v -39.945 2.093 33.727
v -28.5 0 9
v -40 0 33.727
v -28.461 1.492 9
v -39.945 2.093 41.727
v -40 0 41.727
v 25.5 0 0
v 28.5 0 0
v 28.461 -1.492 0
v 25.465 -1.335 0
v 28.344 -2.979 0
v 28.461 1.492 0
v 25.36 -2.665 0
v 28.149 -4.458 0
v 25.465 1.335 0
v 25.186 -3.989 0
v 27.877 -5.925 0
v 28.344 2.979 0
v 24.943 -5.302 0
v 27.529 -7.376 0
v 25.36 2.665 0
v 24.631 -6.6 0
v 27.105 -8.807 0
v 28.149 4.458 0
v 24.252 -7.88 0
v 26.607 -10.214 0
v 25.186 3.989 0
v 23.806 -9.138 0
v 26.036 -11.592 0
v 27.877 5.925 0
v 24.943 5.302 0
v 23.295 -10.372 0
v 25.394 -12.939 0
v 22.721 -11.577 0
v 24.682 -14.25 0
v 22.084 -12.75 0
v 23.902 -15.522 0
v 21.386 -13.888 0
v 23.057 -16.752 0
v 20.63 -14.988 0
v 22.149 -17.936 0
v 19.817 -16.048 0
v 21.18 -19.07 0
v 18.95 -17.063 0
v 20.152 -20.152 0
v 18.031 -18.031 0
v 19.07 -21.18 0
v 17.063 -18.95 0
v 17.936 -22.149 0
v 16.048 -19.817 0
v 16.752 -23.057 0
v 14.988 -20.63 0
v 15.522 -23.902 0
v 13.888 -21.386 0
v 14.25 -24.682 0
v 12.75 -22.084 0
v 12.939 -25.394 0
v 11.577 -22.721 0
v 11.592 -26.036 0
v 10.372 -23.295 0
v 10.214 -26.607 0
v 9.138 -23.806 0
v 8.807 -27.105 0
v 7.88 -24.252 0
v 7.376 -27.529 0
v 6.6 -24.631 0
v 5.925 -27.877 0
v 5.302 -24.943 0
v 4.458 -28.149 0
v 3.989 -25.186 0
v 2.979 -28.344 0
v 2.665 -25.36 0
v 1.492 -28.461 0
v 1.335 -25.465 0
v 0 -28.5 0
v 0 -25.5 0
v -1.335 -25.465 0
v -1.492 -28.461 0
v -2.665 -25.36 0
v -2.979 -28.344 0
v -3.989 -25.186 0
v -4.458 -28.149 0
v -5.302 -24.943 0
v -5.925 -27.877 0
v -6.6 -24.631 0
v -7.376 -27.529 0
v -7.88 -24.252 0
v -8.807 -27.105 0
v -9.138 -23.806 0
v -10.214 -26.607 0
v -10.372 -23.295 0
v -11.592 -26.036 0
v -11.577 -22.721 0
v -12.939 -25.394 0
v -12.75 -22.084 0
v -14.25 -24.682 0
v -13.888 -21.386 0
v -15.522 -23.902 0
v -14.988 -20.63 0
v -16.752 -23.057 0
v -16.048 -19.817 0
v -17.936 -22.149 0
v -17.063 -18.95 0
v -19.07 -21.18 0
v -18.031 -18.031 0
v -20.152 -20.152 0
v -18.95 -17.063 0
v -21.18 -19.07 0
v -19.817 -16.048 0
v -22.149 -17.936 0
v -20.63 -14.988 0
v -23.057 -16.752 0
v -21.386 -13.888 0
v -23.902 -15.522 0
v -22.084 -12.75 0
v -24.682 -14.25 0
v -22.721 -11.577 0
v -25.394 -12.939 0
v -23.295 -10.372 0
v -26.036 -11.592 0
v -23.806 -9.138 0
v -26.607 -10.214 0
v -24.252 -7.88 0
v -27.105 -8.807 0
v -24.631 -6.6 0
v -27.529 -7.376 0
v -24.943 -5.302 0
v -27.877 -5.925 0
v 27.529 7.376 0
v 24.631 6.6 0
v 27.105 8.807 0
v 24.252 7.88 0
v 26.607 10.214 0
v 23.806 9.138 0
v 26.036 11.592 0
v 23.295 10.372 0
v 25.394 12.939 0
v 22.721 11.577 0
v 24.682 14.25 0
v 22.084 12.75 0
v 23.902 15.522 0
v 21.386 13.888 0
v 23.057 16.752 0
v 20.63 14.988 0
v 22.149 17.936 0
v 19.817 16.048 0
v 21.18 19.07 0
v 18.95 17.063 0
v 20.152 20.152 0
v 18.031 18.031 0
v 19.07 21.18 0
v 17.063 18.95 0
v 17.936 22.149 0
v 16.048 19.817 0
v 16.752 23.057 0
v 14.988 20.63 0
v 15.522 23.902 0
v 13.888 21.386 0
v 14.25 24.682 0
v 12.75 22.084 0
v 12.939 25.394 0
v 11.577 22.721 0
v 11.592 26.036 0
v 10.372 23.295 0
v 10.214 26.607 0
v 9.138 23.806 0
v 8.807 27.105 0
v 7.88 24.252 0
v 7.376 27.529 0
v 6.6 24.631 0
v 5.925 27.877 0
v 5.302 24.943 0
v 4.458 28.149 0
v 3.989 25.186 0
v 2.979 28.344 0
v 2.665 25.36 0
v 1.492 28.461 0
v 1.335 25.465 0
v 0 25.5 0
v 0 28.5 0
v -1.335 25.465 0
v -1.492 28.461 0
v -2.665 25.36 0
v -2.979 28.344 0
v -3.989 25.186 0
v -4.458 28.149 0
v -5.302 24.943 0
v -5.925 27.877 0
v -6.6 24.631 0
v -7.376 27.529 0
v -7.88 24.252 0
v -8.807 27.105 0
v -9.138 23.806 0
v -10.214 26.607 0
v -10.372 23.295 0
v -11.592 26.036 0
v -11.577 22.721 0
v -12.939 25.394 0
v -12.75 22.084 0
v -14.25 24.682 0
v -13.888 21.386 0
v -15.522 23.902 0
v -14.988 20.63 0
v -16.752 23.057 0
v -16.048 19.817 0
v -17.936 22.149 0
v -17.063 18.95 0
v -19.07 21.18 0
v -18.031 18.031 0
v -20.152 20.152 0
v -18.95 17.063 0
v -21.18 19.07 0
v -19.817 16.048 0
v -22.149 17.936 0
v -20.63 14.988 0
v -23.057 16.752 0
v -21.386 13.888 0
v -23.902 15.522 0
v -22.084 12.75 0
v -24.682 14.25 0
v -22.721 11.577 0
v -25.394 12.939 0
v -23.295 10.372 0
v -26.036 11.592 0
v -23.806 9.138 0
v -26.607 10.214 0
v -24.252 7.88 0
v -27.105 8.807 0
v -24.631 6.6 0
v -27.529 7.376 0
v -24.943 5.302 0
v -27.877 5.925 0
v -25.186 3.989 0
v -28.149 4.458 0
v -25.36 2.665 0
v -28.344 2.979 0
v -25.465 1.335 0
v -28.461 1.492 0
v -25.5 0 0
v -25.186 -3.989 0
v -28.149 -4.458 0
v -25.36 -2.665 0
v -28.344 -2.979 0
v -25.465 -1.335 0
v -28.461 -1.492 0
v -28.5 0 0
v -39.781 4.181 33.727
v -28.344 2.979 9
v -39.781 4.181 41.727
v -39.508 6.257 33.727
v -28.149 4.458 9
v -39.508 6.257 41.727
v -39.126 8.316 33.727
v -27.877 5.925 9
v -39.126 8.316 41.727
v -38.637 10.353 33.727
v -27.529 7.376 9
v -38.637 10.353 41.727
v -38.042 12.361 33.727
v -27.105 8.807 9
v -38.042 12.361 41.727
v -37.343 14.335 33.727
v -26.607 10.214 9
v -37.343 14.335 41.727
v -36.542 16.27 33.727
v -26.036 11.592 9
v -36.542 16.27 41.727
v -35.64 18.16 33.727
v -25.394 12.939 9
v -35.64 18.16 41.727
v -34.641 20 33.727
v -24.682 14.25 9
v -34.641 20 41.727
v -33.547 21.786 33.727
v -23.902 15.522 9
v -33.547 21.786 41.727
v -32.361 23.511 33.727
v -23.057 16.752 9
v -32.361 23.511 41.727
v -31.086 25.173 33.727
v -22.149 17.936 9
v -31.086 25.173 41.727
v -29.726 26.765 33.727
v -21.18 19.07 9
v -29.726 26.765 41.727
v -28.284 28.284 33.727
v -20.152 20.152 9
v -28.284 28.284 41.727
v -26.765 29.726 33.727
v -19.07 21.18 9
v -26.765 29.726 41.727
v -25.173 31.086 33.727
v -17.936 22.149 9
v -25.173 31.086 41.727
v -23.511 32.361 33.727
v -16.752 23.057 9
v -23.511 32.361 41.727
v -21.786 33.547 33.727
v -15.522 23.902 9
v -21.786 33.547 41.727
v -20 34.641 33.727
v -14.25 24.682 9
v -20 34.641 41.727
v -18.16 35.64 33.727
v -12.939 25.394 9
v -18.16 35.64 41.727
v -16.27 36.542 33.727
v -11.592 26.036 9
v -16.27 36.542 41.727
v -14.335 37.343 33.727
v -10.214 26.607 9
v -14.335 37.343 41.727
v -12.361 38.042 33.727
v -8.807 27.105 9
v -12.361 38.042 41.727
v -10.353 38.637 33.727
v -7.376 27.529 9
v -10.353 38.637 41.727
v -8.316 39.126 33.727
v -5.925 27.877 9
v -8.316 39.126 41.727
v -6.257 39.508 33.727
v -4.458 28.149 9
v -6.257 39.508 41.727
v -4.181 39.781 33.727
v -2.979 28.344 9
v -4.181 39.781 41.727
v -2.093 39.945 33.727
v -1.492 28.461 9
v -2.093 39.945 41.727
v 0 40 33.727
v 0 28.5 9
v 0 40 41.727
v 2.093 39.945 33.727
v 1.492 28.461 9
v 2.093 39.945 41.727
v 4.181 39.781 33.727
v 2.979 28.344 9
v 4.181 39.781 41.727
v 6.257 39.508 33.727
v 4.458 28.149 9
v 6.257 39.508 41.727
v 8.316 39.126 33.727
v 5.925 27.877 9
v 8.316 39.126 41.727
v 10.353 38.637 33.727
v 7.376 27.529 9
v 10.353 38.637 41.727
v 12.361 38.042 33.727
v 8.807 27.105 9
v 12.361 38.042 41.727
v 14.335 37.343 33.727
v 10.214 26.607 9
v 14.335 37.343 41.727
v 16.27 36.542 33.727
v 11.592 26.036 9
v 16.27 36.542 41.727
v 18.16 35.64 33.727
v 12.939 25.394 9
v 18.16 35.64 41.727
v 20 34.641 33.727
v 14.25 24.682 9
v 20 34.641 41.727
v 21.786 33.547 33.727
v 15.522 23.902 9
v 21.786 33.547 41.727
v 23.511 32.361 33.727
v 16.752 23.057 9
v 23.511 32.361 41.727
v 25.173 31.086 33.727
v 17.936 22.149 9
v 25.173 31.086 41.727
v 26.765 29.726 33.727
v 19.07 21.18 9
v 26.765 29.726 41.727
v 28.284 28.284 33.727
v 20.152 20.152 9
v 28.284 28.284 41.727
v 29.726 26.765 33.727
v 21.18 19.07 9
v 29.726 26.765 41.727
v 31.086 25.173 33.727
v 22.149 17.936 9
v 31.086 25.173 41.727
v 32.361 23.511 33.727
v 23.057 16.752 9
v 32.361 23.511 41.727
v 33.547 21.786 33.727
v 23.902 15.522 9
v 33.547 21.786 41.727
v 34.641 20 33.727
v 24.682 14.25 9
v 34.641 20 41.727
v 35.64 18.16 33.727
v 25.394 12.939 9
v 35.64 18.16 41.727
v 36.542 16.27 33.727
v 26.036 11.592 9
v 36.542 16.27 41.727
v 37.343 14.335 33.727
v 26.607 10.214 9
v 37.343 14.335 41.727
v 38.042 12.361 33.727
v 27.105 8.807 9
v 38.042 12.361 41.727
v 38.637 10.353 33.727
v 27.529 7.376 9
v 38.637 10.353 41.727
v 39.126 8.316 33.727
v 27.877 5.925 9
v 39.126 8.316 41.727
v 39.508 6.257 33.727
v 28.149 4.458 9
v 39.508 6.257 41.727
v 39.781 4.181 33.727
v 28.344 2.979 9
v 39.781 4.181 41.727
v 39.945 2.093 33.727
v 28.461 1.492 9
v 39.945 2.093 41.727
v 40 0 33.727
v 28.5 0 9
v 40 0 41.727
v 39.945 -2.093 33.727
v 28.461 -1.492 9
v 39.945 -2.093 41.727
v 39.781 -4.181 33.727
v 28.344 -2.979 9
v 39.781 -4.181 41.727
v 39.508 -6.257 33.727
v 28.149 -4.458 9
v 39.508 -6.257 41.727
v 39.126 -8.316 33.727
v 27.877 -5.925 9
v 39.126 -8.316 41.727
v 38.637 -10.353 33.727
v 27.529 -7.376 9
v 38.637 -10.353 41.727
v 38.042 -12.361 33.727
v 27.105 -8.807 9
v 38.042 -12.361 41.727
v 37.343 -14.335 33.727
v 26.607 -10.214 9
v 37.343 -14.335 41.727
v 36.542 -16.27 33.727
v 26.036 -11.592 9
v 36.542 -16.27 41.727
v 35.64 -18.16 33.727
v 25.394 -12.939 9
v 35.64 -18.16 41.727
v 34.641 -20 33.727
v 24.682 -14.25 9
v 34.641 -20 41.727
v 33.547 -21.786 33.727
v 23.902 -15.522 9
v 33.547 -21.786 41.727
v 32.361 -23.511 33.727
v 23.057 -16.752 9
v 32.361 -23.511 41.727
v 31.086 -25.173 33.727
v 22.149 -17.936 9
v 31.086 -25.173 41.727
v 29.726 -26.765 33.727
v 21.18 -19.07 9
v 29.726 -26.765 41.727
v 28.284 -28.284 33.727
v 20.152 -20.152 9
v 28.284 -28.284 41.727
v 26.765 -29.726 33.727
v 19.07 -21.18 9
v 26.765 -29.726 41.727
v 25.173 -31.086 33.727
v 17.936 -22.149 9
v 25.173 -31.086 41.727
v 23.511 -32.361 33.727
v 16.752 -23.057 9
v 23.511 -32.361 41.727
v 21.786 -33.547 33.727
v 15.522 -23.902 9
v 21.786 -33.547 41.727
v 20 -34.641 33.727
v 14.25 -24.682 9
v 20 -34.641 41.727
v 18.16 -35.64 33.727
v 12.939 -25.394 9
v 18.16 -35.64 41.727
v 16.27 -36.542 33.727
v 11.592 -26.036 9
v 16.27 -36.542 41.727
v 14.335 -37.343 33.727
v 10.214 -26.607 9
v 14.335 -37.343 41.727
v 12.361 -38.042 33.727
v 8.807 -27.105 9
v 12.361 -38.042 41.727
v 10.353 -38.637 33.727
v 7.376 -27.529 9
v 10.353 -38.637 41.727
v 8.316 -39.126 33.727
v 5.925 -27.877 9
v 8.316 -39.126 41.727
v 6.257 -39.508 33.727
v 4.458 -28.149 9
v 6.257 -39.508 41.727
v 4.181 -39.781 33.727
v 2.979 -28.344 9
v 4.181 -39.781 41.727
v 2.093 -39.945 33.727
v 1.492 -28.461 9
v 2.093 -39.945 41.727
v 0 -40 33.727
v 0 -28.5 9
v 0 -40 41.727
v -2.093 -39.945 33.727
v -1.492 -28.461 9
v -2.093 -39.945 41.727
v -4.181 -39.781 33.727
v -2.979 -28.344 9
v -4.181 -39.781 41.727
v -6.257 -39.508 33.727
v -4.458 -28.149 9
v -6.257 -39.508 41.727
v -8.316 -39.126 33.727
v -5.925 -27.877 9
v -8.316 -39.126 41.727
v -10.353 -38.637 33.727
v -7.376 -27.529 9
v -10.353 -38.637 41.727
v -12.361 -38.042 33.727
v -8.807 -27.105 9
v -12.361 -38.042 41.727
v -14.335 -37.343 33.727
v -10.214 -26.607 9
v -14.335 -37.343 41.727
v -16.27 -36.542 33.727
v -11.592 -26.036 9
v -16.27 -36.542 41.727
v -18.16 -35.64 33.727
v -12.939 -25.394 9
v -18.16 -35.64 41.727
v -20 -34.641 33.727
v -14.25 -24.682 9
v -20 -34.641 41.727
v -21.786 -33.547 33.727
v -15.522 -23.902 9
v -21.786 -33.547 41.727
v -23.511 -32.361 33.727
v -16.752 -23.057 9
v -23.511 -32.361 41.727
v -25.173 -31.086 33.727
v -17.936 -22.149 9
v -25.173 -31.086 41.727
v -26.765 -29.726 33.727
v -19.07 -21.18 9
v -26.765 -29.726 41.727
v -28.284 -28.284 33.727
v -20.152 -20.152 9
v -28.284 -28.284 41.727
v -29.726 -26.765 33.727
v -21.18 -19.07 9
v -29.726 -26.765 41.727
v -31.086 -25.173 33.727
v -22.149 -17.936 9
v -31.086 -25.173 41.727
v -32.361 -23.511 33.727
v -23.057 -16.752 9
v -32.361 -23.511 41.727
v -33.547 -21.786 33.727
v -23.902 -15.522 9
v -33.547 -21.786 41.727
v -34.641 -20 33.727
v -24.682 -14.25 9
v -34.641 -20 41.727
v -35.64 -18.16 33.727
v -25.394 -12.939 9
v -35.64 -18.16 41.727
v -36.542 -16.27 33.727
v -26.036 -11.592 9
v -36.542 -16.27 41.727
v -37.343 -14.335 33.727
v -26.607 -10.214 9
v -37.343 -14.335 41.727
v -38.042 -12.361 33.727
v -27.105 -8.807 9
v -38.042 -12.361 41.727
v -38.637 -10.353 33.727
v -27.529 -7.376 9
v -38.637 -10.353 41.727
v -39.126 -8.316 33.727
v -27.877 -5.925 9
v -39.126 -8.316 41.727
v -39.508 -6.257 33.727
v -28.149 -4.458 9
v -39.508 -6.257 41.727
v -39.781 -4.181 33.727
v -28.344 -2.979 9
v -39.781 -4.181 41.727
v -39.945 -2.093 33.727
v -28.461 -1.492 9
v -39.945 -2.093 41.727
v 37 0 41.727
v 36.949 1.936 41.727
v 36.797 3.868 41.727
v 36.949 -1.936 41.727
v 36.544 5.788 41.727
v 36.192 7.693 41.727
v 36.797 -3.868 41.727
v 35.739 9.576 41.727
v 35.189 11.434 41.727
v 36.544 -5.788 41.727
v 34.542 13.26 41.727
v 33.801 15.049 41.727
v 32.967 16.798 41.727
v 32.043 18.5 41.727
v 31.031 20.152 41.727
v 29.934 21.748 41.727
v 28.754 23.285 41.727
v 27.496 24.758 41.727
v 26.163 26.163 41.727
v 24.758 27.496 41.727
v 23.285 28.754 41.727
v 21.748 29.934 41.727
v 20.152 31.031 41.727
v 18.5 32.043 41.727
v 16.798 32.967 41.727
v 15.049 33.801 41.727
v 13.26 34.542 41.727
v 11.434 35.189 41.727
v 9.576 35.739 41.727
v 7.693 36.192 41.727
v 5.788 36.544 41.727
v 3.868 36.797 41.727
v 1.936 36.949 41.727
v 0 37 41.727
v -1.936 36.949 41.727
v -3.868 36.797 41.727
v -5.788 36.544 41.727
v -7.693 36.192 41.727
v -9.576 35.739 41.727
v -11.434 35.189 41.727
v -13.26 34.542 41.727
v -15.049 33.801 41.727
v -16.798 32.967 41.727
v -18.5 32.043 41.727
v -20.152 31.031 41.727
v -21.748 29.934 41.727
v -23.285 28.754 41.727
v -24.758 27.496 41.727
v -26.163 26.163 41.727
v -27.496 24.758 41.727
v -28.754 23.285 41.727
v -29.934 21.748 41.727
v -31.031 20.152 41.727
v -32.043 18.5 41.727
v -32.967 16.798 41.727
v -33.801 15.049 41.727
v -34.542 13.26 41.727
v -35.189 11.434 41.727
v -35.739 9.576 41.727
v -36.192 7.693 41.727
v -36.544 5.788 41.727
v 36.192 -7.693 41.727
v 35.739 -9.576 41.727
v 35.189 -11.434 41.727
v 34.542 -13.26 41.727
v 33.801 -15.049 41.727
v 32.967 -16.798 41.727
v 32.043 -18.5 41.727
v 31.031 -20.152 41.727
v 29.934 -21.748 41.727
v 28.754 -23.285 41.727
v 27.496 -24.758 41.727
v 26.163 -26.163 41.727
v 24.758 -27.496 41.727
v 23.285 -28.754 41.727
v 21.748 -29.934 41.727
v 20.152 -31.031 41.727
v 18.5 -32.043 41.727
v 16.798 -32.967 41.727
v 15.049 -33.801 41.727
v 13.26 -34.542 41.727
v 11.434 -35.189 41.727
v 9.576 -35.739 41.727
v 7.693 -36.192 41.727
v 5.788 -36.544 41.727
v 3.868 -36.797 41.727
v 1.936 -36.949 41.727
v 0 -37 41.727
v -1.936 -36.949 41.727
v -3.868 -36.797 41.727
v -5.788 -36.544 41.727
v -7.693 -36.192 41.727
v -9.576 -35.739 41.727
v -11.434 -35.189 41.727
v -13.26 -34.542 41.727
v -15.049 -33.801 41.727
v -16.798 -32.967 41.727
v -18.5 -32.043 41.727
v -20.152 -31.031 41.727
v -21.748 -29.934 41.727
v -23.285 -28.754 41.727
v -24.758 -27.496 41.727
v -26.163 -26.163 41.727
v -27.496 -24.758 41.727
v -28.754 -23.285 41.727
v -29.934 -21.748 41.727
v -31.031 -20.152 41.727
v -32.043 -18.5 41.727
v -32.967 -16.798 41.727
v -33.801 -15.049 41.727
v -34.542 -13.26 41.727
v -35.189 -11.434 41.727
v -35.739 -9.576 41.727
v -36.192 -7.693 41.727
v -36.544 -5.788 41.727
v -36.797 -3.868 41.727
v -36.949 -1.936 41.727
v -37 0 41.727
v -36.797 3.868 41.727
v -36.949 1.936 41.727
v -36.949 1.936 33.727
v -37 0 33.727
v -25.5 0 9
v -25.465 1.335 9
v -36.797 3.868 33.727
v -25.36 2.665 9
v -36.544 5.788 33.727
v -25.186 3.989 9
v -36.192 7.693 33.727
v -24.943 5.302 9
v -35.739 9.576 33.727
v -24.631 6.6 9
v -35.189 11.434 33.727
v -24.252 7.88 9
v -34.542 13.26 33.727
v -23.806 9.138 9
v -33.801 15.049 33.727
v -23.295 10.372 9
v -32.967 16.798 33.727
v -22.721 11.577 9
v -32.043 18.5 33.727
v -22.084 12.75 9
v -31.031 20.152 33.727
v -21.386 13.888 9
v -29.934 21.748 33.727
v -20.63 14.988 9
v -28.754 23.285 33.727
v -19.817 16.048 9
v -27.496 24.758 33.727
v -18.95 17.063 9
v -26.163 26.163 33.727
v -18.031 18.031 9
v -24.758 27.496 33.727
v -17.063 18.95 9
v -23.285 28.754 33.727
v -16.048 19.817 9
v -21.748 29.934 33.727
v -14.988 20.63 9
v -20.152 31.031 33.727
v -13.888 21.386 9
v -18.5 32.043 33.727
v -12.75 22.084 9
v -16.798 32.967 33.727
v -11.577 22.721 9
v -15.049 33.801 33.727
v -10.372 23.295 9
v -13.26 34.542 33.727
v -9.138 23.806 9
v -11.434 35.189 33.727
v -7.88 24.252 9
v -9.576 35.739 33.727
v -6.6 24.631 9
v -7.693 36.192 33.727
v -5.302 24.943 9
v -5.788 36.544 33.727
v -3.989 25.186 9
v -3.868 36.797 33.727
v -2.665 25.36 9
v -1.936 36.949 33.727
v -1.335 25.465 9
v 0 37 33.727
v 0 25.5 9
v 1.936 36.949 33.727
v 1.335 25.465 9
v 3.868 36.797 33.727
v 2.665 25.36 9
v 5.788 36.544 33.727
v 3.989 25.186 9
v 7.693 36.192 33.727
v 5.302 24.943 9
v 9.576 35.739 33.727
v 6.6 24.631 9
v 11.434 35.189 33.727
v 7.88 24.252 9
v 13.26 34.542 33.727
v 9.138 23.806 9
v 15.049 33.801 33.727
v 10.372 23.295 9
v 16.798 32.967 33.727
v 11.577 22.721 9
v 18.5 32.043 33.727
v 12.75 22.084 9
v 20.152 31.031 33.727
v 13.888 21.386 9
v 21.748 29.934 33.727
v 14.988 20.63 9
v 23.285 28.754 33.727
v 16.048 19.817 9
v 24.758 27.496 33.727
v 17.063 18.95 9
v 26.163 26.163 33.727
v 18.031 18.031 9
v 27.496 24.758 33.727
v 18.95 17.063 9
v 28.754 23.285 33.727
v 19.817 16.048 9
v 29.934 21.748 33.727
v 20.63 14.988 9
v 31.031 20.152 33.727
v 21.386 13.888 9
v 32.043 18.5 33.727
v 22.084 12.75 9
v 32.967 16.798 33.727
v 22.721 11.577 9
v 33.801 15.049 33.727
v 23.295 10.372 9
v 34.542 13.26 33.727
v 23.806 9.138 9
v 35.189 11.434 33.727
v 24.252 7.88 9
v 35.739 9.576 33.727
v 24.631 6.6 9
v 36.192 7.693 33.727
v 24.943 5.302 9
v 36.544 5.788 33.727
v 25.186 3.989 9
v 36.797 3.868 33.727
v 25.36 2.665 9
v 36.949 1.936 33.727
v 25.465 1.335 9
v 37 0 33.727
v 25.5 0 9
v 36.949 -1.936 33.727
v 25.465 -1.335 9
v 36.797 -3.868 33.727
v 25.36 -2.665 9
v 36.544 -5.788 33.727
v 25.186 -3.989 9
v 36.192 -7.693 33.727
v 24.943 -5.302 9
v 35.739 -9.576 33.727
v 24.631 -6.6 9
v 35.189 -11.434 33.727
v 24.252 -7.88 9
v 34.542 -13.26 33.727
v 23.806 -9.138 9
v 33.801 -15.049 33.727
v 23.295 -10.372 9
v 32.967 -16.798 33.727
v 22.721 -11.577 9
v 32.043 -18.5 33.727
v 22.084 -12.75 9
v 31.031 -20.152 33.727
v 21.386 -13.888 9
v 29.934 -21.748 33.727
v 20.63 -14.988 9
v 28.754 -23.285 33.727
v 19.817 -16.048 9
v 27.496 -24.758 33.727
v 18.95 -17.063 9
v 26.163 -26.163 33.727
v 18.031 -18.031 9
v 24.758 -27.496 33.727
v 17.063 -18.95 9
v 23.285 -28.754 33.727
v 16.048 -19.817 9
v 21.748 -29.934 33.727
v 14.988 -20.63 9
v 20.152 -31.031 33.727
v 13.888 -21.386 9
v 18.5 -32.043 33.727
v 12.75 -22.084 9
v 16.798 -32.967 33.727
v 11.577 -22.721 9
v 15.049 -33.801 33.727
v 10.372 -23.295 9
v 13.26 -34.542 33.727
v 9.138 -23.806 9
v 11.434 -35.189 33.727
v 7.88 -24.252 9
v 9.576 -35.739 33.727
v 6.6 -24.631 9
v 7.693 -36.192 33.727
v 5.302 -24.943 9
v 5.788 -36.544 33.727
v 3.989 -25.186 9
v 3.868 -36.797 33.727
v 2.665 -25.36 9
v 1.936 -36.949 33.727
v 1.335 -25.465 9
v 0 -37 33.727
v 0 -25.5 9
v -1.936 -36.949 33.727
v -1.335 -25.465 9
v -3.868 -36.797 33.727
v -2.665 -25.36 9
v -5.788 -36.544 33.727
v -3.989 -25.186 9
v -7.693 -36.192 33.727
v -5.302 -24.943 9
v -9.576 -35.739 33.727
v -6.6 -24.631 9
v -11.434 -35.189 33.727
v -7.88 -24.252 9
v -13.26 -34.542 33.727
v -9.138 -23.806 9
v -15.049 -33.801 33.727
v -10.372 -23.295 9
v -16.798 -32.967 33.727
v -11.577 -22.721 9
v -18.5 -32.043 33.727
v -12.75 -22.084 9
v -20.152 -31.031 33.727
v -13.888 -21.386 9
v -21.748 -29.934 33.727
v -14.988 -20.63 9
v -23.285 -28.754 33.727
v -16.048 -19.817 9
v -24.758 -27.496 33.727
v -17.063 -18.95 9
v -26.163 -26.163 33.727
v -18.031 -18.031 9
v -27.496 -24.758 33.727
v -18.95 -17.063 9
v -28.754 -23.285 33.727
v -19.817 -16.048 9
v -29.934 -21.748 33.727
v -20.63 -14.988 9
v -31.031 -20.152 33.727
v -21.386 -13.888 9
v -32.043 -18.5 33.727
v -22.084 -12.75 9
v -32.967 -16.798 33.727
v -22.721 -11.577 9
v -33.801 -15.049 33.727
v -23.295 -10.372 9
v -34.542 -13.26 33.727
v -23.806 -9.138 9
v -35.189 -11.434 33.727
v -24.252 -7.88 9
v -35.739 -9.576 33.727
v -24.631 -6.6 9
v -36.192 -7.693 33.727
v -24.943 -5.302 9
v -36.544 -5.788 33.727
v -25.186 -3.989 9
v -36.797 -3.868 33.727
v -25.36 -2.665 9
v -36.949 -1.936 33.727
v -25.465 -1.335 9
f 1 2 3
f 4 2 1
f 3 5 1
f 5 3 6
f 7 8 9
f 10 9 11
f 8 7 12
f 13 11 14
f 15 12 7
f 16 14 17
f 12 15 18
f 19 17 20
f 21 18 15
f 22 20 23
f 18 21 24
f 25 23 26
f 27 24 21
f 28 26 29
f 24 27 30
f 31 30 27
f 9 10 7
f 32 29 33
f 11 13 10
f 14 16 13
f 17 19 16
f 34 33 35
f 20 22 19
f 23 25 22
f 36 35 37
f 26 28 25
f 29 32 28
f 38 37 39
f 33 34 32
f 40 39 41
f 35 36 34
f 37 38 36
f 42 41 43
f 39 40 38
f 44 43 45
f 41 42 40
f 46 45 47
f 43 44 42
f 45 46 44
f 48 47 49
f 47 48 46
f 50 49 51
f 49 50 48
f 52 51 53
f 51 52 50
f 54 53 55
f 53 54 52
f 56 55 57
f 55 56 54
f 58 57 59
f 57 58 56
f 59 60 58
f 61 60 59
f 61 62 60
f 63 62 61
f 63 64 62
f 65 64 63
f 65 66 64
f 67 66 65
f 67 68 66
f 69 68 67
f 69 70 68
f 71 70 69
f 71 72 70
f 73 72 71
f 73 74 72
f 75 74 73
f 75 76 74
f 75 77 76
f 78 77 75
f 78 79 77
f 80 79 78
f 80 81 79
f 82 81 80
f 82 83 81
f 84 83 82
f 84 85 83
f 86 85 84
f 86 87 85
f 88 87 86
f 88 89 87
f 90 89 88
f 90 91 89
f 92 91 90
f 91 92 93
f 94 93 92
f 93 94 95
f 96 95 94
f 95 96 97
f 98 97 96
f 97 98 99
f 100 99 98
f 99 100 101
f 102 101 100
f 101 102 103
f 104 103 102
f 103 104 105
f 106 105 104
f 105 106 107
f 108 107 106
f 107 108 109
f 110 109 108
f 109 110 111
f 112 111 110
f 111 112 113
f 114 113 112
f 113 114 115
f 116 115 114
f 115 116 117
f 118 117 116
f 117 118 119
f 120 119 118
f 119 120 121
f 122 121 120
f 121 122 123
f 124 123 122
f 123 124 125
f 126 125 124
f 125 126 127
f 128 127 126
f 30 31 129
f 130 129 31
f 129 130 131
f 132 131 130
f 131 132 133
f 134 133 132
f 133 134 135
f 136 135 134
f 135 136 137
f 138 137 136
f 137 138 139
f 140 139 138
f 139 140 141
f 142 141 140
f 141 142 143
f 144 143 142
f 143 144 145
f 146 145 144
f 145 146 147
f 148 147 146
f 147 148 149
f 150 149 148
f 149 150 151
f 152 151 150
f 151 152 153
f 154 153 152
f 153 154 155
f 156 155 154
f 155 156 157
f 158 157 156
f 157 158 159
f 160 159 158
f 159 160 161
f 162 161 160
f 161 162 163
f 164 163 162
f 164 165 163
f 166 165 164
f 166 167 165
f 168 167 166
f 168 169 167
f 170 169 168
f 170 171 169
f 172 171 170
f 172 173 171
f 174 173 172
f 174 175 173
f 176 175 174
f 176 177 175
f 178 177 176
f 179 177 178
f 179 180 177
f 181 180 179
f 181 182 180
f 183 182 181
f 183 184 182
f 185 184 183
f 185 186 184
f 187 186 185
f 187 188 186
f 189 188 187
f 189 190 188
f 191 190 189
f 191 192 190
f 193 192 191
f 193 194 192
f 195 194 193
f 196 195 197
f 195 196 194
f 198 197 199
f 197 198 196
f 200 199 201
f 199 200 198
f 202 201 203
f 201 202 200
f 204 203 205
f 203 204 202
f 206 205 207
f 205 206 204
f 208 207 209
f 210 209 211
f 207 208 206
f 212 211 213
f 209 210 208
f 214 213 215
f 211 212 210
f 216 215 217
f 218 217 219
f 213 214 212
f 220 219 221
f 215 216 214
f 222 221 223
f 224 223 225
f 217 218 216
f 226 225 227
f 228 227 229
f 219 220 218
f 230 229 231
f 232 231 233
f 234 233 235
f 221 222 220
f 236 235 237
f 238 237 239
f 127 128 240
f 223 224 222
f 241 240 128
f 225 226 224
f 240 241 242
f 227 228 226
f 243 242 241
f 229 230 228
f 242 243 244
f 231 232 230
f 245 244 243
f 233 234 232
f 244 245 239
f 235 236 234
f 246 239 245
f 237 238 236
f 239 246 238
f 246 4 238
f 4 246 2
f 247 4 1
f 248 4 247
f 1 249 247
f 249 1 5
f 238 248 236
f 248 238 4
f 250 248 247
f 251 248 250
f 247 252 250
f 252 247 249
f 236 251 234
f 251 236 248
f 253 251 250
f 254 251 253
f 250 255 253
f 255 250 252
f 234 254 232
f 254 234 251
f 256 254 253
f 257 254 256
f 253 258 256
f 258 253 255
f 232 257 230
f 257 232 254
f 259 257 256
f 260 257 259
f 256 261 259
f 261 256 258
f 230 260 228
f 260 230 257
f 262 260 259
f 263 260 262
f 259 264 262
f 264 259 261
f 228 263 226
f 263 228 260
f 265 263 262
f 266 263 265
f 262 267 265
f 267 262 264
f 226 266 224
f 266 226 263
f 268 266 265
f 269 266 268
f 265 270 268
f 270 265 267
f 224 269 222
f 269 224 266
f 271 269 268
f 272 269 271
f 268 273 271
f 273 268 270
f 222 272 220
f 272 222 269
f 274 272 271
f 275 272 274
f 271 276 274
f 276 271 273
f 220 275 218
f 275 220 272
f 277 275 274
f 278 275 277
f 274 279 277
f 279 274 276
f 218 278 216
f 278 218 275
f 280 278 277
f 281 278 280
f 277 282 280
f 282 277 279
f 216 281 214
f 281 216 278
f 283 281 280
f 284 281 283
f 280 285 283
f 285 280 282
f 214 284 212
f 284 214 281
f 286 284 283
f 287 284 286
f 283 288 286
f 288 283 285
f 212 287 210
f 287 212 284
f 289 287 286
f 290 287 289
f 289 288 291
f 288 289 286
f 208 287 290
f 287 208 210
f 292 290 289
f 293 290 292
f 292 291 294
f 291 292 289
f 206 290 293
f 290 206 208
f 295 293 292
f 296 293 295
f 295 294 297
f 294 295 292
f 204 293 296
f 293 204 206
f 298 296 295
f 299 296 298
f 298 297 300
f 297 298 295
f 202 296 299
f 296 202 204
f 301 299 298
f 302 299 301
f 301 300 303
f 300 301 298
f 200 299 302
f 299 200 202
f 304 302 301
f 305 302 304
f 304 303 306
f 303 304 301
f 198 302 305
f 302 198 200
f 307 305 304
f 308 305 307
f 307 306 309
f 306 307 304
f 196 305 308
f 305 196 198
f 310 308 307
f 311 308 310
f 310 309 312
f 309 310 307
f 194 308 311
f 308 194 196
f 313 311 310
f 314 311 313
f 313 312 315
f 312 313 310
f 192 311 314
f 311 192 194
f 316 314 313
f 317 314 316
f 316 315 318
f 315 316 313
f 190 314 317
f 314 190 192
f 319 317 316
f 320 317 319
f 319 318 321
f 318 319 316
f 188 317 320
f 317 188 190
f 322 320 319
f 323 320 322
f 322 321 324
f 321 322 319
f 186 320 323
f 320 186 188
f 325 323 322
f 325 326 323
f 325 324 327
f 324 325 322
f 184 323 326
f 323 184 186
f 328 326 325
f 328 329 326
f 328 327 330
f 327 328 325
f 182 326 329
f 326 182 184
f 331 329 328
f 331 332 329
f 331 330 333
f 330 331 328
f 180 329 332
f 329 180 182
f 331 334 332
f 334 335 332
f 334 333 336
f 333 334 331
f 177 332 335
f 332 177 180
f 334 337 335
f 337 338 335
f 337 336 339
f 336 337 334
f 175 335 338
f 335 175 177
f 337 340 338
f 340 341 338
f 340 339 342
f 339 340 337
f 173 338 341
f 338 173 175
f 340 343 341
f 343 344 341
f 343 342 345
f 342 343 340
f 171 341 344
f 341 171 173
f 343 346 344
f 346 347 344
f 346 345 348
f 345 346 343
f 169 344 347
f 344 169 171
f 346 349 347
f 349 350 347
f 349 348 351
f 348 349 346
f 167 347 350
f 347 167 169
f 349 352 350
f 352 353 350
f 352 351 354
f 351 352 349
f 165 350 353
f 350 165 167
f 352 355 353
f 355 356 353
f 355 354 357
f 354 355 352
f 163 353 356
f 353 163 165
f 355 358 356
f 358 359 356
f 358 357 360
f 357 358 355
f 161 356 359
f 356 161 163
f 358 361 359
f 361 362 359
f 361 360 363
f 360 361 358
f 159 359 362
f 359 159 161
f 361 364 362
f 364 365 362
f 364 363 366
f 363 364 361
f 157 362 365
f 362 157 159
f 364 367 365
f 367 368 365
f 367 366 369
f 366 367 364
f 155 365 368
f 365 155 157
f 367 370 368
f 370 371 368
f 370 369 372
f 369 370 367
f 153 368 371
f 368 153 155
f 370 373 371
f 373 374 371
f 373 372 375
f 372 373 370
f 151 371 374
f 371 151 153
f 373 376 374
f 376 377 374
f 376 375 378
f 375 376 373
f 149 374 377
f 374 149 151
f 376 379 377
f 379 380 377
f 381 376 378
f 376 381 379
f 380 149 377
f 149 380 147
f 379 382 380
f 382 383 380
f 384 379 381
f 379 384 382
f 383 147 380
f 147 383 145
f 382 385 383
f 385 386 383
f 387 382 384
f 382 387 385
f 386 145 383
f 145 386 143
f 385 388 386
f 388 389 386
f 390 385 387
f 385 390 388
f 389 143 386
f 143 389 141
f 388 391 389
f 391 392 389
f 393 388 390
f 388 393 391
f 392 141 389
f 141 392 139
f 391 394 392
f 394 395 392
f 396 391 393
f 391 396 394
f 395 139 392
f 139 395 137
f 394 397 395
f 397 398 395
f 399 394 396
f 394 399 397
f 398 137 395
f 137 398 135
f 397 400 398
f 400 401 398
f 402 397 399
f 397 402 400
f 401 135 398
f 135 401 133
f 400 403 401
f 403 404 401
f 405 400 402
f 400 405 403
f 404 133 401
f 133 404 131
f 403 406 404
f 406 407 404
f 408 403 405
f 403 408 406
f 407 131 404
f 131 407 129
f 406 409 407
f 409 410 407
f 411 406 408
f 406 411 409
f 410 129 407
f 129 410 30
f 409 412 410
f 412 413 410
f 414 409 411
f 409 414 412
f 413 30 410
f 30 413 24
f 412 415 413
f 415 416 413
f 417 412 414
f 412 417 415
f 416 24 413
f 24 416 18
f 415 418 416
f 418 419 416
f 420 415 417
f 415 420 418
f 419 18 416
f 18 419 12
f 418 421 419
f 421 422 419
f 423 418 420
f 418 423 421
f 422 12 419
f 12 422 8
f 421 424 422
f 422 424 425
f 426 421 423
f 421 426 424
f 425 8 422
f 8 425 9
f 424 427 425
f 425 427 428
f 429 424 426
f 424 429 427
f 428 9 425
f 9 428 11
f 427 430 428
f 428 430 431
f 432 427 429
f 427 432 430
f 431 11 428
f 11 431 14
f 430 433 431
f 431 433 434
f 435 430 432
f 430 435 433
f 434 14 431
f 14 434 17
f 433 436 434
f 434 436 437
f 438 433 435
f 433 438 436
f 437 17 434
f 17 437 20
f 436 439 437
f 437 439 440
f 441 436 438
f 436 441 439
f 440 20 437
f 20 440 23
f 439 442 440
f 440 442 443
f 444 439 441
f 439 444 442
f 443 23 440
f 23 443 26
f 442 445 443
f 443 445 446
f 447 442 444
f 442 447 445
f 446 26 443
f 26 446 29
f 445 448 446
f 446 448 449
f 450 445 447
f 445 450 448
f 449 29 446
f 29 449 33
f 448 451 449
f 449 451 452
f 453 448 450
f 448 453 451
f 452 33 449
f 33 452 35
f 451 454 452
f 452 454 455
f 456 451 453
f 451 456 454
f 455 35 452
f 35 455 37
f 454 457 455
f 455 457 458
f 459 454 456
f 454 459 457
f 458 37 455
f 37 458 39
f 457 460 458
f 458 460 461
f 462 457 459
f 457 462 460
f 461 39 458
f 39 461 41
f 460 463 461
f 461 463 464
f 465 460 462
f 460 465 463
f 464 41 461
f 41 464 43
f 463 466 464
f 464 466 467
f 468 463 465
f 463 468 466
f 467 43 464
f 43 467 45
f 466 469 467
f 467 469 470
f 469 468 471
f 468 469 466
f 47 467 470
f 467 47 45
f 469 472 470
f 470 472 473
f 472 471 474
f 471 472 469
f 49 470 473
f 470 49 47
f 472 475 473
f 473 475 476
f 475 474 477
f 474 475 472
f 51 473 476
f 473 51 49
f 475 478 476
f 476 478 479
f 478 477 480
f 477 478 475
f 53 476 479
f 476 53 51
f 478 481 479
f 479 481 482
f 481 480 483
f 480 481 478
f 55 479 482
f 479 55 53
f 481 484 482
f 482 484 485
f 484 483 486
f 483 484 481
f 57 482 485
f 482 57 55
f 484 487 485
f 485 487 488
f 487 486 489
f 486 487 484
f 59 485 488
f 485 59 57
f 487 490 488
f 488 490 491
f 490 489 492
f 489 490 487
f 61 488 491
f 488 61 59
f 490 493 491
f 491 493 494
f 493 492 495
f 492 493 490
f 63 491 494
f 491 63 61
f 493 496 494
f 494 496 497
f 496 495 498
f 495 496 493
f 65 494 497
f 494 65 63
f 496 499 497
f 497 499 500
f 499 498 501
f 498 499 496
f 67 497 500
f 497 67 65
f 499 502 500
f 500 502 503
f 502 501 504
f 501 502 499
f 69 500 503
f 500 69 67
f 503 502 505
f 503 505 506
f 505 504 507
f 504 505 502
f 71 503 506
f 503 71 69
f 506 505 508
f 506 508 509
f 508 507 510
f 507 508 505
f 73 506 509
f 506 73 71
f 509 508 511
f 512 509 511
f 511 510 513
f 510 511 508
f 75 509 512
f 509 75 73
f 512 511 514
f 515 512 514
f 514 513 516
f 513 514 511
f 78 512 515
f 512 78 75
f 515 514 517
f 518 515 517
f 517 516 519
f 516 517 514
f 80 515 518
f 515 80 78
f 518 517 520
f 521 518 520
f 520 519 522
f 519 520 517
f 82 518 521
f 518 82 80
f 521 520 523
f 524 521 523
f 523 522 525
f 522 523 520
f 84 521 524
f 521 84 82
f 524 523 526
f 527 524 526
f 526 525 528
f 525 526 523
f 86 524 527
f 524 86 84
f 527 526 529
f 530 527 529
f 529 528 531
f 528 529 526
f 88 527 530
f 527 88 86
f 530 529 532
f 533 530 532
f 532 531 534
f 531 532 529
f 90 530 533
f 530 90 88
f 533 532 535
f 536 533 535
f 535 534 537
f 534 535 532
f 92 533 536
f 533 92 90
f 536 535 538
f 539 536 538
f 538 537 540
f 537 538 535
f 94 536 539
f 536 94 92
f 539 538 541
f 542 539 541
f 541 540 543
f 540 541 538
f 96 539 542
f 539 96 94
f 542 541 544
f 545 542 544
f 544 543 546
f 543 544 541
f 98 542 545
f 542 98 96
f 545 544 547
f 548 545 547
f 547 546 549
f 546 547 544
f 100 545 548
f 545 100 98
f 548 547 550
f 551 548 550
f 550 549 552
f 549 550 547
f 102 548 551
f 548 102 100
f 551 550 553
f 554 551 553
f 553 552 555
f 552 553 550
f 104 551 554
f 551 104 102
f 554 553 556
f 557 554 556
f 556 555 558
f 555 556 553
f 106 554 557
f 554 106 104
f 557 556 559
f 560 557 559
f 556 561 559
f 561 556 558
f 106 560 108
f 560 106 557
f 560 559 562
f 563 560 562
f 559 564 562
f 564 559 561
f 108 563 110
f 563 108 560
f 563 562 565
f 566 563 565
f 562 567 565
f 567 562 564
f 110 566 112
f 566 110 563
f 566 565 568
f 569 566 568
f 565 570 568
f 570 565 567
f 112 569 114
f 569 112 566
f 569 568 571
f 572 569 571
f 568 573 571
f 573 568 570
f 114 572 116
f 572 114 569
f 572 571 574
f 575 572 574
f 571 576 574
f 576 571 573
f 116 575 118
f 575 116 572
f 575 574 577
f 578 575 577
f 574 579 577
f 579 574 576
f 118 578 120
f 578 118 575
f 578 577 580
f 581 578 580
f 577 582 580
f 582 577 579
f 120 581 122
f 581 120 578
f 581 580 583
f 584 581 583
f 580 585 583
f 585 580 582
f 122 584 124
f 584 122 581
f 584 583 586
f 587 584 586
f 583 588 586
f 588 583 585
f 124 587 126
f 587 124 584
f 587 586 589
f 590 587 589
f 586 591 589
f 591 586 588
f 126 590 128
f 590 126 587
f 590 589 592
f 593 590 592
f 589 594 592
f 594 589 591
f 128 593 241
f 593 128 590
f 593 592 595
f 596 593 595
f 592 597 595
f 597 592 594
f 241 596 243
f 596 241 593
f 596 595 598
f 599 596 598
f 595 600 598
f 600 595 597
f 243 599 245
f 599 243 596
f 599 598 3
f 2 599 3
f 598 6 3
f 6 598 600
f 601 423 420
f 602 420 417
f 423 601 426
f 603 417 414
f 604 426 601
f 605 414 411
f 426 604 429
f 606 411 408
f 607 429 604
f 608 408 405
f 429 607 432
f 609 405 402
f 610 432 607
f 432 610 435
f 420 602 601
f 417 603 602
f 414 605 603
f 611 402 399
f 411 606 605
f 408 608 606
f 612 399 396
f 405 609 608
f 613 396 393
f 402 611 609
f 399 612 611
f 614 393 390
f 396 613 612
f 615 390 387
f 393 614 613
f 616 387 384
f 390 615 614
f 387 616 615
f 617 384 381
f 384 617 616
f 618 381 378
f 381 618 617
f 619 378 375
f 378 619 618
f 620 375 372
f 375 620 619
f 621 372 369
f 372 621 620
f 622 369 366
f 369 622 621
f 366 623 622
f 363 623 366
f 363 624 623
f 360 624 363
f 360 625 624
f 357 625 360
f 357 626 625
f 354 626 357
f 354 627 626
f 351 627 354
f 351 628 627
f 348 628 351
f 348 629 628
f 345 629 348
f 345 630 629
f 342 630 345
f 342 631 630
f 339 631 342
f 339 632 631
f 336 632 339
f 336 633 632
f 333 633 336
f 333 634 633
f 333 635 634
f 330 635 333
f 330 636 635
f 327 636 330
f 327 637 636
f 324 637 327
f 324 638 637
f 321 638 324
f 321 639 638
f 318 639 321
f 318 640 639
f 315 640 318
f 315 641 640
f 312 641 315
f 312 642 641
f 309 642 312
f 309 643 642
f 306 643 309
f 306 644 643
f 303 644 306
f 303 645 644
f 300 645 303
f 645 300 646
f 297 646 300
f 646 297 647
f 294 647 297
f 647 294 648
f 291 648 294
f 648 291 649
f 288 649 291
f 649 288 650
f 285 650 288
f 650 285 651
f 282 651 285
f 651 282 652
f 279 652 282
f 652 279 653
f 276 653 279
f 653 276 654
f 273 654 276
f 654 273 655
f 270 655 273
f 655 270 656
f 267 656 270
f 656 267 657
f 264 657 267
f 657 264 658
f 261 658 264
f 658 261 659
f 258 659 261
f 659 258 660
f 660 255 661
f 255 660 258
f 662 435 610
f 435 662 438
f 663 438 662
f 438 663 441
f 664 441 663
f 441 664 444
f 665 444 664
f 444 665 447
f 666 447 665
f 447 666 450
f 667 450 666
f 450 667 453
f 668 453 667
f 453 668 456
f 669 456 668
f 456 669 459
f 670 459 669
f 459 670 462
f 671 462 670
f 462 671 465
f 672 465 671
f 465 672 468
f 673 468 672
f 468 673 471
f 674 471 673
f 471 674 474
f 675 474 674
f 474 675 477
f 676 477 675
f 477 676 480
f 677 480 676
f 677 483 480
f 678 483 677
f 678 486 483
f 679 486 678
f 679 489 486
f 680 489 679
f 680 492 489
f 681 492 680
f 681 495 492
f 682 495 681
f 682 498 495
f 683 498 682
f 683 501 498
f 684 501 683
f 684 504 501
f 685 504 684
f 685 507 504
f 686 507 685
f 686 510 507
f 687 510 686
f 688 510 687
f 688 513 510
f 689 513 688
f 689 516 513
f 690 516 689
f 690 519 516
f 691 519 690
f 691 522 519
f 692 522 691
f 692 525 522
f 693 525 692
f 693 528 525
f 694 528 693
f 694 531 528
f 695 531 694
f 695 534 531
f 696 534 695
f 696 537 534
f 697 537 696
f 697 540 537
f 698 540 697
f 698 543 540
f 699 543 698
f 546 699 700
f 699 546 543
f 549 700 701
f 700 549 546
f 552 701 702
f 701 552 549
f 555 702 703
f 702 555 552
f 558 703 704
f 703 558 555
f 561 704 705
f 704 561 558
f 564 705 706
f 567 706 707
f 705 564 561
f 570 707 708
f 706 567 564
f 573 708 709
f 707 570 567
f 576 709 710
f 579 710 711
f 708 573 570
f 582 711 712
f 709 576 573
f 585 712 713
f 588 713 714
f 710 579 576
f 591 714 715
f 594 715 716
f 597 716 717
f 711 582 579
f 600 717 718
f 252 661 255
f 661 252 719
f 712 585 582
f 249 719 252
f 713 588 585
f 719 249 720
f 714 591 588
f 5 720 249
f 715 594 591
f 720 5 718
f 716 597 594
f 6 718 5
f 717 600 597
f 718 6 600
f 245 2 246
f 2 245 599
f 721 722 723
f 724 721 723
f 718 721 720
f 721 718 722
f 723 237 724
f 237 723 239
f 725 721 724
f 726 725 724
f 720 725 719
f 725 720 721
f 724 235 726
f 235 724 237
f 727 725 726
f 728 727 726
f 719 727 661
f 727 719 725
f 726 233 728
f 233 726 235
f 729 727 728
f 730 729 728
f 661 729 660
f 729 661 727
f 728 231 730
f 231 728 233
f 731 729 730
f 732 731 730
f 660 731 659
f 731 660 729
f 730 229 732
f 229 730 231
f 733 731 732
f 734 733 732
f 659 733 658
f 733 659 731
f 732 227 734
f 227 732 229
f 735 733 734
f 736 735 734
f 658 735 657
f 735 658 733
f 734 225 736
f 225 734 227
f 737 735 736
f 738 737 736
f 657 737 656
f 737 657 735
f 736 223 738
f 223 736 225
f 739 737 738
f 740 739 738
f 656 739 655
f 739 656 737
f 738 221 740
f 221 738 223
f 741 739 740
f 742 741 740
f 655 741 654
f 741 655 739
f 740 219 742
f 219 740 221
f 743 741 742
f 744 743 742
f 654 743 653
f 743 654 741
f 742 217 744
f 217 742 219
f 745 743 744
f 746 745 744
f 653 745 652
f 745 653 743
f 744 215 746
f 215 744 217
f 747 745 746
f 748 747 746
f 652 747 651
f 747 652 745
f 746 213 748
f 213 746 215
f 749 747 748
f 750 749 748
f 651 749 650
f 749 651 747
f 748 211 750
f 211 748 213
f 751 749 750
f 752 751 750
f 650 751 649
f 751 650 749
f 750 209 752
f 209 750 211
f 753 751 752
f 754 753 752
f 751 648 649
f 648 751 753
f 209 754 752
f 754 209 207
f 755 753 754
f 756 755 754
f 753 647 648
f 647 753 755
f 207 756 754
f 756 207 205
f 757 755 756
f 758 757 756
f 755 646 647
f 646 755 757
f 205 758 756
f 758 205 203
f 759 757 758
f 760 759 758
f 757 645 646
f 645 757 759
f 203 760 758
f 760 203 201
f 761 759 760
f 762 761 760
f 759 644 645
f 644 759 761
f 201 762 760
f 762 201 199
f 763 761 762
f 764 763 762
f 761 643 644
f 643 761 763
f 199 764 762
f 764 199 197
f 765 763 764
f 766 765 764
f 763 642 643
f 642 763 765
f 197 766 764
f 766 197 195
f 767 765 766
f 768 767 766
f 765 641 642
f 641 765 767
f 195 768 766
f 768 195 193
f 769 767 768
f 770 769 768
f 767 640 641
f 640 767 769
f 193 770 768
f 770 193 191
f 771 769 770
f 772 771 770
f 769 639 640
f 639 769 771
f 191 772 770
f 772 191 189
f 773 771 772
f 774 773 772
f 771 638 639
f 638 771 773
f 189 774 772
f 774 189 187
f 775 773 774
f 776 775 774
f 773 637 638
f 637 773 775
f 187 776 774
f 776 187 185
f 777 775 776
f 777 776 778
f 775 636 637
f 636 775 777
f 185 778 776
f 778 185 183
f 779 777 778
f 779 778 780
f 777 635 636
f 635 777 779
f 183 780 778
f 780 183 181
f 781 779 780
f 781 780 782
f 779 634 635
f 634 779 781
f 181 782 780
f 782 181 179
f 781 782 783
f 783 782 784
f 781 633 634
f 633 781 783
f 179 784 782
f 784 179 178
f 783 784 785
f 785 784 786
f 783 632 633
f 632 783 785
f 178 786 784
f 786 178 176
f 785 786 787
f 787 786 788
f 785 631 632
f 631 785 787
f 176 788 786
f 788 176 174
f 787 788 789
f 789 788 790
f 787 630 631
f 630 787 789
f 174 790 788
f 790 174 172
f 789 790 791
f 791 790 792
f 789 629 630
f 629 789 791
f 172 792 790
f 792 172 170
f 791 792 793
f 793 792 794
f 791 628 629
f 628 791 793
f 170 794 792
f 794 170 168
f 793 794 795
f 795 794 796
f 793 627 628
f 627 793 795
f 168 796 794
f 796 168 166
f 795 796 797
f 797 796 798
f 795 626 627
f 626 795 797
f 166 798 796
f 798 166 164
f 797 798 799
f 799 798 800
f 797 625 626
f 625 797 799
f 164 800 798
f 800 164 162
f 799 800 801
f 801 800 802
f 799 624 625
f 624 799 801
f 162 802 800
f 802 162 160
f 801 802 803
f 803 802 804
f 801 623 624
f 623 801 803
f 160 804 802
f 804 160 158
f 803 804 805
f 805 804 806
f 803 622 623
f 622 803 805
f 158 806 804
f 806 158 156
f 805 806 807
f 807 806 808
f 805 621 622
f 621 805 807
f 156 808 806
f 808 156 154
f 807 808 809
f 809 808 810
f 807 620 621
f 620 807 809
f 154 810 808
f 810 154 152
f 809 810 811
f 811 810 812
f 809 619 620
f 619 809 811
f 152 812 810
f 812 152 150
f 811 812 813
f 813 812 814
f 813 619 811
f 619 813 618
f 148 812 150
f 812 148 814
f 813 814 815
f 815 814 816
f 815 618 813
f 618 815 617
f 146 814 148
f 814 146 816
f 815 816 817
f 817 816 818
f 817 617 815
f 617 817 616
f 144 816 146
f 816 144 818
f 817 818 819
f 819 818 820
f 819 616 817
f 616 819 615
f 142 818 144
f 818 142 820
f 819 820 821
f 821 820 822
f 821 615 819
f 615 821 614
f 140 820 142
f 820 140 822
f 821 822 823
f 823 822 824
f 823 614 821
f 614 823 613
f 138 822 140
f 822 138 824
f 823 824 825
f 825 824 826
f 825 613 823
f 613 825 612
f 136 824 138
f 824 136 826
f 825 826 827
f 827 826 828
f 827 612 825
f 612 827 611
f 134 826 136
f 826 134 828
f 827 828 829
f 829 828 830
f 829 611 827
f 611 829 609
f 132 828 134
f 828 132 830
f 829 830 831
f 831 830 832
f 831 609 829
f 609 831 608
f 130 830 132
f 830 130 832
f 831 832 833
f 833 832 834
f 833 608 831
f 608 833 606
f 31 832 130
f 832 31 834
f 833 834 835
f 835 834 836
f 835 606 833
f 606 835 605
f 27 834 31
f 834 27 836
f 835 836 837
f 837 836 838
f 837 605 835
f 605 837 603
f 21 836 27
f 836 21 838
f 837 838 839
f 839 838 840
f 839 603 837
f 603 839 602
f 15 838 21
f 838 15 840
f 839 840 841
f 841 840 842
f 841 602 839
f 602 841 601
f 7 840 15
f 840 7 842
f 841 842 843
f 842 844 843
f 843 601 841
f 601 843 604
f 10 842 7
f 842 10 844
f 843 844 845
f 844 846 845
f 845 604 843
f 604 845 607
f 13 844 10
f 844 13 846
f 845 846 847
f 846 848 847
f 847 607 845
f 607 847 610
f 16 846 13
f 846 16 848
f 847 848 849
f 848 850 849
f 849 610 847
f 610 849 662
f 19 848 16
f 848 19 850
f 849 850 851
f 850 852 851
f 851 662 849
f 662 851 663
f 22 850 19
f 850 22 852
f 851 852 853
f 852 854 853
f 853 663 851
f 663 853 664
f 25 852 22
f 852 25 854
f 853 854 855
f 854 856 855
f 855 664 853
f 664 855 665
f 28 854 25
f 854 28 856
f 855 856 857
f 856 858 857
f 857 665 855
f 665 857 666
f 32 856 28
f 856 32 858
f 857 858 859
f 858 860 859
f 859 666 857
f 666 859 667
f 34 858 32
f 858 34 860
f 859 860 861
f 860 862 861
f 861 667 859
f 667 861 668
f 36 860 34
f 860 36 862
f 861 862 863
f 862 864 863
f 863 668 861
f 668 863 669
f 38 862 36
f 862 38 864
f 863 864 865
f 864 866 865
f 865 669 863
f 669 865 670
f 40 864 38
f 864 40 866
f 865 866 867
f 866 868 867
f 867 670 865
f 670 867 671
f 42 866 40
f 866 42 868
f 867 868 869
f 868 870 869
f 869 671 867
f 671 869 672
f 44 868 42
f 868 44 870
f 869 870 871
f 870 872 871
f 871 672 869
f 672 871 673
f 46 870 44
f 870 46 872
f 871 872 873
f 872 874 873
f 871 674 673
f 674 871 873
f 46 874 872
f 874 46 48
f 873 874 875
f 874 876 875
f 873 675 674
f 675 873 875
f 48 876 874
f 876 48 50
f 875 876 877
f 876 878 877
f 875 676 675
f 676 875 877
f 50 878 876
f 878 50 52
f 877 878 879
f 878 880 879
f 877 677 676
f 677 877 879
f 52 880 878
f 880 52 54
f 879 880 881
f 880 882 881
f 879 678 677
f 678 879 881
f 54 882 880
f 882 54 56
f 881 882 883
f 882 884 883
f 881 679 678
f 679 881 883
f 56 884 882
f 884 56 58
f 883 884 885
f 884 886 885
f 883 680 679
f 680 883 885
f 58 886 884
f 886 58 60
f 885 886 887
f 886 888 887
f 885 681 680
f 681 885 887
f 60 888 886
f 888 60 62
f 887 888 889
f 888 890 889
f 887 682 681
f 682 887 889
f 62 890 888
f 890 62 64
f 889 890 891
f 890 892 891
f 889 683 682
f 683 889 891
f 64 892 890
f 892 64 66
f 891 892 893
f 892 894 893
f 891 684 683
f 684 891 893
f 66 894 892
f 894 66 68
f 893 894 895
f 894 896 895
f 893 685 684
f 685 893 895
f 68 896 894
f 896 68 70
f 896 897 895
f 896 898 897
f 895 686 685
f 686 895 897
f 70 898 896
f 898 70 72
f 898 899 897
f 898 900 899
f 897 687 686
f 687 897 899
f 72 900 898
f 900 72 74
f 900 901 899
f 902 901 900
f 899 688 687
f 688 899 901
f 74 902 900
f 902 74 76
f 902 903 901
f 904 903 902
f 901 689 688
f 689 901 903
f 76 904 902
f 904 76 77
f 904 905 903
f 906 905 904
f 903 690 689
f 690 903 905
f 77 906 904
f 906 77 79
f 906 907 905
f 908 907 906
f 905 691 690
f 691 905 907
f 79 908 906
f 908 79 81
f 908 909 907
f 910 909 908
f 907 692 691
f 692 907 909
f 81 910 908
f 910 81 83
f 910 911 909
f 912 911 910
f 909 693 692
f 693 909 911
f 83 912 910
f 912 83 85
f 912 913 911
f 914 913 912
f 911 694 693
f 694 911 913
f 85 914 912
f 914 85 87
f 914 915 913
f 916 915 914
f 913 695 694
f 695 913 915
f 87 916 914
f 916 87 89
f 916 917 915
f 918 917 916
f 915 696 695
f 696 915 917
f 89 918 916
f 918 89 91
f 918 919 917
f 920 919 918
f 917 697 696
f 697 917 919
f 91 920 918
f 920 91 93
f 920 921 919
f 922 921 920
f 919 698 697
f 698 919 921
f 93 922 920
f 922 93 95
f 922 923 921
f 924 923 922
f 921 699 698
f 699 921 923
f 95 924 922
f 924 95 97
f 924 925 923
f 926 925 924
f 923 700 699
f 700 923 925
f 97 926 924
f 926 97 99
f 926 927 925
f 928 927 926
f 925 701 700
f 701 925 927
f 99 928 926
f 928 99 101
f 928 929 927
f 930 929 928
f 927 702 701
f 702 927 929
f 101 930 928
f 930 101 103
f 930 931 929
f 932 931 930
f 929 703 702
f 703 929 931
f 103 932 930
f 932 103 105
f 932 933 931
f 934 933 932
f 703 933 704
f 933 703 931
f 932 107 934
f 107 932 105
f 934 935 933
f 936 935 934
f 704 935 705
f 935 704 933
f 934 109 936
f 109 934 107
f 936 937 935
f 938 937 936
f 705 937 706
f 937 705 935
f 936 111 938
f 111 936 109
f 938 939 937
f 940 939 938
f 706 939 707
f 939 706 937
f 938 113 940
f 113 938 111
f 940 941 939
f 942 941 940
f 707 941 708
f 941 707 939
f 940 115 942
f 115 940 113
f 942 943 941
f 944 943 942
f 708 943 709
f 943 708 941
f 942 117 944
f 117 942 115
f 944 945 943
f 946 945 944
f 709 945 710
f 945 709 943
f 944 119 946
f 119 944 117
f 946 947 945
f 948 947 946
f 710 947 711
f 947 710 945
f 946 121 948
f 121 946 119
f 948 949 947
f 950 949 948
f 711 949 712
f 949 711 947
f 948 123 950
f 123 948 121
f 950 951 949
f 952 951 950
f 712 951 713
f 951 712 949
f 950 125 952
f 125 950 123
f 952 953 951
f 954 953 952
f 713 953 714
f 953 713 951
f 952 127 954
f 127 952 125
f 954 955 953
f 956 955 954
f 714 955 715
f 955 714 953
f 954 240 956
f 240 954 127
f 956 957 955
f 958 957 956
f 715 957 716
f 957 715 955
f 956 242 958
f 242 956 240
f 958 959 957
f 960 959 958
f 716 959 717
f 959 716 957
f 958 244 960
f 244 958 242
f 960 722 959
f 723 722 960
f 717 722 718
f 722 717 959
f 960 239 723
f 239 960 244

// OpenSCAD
_fn=120;
_diaRim=80;
_riseRim=8;
_depthLip=9;
_diaLip=57;
_angle=70;
_wallThickness=3;

//cylinder(h=10, d=20);
module detergent_funnel(t=_wallThickness, dr=_diaRim, rr=_riseRim, dil=_diaLip, del=_depthLip, fn=_fn, theta=_angle ) {
    y=del*tan(theta);
    module body(t=t) {
        rotate_extrude($fn=fn) {
            polygon([
                [0, 0],
                [dil/2-t, 0],
                [dil/2-t, del],
                [dr/2-t, y+del],
                [dr/2-t, y+del+rr],
                [0, y+del+rr]
            ]);
        }
    };
    difference() {
        body(t=0);
        body(t=t);
    };
};

detergent_funnel();
